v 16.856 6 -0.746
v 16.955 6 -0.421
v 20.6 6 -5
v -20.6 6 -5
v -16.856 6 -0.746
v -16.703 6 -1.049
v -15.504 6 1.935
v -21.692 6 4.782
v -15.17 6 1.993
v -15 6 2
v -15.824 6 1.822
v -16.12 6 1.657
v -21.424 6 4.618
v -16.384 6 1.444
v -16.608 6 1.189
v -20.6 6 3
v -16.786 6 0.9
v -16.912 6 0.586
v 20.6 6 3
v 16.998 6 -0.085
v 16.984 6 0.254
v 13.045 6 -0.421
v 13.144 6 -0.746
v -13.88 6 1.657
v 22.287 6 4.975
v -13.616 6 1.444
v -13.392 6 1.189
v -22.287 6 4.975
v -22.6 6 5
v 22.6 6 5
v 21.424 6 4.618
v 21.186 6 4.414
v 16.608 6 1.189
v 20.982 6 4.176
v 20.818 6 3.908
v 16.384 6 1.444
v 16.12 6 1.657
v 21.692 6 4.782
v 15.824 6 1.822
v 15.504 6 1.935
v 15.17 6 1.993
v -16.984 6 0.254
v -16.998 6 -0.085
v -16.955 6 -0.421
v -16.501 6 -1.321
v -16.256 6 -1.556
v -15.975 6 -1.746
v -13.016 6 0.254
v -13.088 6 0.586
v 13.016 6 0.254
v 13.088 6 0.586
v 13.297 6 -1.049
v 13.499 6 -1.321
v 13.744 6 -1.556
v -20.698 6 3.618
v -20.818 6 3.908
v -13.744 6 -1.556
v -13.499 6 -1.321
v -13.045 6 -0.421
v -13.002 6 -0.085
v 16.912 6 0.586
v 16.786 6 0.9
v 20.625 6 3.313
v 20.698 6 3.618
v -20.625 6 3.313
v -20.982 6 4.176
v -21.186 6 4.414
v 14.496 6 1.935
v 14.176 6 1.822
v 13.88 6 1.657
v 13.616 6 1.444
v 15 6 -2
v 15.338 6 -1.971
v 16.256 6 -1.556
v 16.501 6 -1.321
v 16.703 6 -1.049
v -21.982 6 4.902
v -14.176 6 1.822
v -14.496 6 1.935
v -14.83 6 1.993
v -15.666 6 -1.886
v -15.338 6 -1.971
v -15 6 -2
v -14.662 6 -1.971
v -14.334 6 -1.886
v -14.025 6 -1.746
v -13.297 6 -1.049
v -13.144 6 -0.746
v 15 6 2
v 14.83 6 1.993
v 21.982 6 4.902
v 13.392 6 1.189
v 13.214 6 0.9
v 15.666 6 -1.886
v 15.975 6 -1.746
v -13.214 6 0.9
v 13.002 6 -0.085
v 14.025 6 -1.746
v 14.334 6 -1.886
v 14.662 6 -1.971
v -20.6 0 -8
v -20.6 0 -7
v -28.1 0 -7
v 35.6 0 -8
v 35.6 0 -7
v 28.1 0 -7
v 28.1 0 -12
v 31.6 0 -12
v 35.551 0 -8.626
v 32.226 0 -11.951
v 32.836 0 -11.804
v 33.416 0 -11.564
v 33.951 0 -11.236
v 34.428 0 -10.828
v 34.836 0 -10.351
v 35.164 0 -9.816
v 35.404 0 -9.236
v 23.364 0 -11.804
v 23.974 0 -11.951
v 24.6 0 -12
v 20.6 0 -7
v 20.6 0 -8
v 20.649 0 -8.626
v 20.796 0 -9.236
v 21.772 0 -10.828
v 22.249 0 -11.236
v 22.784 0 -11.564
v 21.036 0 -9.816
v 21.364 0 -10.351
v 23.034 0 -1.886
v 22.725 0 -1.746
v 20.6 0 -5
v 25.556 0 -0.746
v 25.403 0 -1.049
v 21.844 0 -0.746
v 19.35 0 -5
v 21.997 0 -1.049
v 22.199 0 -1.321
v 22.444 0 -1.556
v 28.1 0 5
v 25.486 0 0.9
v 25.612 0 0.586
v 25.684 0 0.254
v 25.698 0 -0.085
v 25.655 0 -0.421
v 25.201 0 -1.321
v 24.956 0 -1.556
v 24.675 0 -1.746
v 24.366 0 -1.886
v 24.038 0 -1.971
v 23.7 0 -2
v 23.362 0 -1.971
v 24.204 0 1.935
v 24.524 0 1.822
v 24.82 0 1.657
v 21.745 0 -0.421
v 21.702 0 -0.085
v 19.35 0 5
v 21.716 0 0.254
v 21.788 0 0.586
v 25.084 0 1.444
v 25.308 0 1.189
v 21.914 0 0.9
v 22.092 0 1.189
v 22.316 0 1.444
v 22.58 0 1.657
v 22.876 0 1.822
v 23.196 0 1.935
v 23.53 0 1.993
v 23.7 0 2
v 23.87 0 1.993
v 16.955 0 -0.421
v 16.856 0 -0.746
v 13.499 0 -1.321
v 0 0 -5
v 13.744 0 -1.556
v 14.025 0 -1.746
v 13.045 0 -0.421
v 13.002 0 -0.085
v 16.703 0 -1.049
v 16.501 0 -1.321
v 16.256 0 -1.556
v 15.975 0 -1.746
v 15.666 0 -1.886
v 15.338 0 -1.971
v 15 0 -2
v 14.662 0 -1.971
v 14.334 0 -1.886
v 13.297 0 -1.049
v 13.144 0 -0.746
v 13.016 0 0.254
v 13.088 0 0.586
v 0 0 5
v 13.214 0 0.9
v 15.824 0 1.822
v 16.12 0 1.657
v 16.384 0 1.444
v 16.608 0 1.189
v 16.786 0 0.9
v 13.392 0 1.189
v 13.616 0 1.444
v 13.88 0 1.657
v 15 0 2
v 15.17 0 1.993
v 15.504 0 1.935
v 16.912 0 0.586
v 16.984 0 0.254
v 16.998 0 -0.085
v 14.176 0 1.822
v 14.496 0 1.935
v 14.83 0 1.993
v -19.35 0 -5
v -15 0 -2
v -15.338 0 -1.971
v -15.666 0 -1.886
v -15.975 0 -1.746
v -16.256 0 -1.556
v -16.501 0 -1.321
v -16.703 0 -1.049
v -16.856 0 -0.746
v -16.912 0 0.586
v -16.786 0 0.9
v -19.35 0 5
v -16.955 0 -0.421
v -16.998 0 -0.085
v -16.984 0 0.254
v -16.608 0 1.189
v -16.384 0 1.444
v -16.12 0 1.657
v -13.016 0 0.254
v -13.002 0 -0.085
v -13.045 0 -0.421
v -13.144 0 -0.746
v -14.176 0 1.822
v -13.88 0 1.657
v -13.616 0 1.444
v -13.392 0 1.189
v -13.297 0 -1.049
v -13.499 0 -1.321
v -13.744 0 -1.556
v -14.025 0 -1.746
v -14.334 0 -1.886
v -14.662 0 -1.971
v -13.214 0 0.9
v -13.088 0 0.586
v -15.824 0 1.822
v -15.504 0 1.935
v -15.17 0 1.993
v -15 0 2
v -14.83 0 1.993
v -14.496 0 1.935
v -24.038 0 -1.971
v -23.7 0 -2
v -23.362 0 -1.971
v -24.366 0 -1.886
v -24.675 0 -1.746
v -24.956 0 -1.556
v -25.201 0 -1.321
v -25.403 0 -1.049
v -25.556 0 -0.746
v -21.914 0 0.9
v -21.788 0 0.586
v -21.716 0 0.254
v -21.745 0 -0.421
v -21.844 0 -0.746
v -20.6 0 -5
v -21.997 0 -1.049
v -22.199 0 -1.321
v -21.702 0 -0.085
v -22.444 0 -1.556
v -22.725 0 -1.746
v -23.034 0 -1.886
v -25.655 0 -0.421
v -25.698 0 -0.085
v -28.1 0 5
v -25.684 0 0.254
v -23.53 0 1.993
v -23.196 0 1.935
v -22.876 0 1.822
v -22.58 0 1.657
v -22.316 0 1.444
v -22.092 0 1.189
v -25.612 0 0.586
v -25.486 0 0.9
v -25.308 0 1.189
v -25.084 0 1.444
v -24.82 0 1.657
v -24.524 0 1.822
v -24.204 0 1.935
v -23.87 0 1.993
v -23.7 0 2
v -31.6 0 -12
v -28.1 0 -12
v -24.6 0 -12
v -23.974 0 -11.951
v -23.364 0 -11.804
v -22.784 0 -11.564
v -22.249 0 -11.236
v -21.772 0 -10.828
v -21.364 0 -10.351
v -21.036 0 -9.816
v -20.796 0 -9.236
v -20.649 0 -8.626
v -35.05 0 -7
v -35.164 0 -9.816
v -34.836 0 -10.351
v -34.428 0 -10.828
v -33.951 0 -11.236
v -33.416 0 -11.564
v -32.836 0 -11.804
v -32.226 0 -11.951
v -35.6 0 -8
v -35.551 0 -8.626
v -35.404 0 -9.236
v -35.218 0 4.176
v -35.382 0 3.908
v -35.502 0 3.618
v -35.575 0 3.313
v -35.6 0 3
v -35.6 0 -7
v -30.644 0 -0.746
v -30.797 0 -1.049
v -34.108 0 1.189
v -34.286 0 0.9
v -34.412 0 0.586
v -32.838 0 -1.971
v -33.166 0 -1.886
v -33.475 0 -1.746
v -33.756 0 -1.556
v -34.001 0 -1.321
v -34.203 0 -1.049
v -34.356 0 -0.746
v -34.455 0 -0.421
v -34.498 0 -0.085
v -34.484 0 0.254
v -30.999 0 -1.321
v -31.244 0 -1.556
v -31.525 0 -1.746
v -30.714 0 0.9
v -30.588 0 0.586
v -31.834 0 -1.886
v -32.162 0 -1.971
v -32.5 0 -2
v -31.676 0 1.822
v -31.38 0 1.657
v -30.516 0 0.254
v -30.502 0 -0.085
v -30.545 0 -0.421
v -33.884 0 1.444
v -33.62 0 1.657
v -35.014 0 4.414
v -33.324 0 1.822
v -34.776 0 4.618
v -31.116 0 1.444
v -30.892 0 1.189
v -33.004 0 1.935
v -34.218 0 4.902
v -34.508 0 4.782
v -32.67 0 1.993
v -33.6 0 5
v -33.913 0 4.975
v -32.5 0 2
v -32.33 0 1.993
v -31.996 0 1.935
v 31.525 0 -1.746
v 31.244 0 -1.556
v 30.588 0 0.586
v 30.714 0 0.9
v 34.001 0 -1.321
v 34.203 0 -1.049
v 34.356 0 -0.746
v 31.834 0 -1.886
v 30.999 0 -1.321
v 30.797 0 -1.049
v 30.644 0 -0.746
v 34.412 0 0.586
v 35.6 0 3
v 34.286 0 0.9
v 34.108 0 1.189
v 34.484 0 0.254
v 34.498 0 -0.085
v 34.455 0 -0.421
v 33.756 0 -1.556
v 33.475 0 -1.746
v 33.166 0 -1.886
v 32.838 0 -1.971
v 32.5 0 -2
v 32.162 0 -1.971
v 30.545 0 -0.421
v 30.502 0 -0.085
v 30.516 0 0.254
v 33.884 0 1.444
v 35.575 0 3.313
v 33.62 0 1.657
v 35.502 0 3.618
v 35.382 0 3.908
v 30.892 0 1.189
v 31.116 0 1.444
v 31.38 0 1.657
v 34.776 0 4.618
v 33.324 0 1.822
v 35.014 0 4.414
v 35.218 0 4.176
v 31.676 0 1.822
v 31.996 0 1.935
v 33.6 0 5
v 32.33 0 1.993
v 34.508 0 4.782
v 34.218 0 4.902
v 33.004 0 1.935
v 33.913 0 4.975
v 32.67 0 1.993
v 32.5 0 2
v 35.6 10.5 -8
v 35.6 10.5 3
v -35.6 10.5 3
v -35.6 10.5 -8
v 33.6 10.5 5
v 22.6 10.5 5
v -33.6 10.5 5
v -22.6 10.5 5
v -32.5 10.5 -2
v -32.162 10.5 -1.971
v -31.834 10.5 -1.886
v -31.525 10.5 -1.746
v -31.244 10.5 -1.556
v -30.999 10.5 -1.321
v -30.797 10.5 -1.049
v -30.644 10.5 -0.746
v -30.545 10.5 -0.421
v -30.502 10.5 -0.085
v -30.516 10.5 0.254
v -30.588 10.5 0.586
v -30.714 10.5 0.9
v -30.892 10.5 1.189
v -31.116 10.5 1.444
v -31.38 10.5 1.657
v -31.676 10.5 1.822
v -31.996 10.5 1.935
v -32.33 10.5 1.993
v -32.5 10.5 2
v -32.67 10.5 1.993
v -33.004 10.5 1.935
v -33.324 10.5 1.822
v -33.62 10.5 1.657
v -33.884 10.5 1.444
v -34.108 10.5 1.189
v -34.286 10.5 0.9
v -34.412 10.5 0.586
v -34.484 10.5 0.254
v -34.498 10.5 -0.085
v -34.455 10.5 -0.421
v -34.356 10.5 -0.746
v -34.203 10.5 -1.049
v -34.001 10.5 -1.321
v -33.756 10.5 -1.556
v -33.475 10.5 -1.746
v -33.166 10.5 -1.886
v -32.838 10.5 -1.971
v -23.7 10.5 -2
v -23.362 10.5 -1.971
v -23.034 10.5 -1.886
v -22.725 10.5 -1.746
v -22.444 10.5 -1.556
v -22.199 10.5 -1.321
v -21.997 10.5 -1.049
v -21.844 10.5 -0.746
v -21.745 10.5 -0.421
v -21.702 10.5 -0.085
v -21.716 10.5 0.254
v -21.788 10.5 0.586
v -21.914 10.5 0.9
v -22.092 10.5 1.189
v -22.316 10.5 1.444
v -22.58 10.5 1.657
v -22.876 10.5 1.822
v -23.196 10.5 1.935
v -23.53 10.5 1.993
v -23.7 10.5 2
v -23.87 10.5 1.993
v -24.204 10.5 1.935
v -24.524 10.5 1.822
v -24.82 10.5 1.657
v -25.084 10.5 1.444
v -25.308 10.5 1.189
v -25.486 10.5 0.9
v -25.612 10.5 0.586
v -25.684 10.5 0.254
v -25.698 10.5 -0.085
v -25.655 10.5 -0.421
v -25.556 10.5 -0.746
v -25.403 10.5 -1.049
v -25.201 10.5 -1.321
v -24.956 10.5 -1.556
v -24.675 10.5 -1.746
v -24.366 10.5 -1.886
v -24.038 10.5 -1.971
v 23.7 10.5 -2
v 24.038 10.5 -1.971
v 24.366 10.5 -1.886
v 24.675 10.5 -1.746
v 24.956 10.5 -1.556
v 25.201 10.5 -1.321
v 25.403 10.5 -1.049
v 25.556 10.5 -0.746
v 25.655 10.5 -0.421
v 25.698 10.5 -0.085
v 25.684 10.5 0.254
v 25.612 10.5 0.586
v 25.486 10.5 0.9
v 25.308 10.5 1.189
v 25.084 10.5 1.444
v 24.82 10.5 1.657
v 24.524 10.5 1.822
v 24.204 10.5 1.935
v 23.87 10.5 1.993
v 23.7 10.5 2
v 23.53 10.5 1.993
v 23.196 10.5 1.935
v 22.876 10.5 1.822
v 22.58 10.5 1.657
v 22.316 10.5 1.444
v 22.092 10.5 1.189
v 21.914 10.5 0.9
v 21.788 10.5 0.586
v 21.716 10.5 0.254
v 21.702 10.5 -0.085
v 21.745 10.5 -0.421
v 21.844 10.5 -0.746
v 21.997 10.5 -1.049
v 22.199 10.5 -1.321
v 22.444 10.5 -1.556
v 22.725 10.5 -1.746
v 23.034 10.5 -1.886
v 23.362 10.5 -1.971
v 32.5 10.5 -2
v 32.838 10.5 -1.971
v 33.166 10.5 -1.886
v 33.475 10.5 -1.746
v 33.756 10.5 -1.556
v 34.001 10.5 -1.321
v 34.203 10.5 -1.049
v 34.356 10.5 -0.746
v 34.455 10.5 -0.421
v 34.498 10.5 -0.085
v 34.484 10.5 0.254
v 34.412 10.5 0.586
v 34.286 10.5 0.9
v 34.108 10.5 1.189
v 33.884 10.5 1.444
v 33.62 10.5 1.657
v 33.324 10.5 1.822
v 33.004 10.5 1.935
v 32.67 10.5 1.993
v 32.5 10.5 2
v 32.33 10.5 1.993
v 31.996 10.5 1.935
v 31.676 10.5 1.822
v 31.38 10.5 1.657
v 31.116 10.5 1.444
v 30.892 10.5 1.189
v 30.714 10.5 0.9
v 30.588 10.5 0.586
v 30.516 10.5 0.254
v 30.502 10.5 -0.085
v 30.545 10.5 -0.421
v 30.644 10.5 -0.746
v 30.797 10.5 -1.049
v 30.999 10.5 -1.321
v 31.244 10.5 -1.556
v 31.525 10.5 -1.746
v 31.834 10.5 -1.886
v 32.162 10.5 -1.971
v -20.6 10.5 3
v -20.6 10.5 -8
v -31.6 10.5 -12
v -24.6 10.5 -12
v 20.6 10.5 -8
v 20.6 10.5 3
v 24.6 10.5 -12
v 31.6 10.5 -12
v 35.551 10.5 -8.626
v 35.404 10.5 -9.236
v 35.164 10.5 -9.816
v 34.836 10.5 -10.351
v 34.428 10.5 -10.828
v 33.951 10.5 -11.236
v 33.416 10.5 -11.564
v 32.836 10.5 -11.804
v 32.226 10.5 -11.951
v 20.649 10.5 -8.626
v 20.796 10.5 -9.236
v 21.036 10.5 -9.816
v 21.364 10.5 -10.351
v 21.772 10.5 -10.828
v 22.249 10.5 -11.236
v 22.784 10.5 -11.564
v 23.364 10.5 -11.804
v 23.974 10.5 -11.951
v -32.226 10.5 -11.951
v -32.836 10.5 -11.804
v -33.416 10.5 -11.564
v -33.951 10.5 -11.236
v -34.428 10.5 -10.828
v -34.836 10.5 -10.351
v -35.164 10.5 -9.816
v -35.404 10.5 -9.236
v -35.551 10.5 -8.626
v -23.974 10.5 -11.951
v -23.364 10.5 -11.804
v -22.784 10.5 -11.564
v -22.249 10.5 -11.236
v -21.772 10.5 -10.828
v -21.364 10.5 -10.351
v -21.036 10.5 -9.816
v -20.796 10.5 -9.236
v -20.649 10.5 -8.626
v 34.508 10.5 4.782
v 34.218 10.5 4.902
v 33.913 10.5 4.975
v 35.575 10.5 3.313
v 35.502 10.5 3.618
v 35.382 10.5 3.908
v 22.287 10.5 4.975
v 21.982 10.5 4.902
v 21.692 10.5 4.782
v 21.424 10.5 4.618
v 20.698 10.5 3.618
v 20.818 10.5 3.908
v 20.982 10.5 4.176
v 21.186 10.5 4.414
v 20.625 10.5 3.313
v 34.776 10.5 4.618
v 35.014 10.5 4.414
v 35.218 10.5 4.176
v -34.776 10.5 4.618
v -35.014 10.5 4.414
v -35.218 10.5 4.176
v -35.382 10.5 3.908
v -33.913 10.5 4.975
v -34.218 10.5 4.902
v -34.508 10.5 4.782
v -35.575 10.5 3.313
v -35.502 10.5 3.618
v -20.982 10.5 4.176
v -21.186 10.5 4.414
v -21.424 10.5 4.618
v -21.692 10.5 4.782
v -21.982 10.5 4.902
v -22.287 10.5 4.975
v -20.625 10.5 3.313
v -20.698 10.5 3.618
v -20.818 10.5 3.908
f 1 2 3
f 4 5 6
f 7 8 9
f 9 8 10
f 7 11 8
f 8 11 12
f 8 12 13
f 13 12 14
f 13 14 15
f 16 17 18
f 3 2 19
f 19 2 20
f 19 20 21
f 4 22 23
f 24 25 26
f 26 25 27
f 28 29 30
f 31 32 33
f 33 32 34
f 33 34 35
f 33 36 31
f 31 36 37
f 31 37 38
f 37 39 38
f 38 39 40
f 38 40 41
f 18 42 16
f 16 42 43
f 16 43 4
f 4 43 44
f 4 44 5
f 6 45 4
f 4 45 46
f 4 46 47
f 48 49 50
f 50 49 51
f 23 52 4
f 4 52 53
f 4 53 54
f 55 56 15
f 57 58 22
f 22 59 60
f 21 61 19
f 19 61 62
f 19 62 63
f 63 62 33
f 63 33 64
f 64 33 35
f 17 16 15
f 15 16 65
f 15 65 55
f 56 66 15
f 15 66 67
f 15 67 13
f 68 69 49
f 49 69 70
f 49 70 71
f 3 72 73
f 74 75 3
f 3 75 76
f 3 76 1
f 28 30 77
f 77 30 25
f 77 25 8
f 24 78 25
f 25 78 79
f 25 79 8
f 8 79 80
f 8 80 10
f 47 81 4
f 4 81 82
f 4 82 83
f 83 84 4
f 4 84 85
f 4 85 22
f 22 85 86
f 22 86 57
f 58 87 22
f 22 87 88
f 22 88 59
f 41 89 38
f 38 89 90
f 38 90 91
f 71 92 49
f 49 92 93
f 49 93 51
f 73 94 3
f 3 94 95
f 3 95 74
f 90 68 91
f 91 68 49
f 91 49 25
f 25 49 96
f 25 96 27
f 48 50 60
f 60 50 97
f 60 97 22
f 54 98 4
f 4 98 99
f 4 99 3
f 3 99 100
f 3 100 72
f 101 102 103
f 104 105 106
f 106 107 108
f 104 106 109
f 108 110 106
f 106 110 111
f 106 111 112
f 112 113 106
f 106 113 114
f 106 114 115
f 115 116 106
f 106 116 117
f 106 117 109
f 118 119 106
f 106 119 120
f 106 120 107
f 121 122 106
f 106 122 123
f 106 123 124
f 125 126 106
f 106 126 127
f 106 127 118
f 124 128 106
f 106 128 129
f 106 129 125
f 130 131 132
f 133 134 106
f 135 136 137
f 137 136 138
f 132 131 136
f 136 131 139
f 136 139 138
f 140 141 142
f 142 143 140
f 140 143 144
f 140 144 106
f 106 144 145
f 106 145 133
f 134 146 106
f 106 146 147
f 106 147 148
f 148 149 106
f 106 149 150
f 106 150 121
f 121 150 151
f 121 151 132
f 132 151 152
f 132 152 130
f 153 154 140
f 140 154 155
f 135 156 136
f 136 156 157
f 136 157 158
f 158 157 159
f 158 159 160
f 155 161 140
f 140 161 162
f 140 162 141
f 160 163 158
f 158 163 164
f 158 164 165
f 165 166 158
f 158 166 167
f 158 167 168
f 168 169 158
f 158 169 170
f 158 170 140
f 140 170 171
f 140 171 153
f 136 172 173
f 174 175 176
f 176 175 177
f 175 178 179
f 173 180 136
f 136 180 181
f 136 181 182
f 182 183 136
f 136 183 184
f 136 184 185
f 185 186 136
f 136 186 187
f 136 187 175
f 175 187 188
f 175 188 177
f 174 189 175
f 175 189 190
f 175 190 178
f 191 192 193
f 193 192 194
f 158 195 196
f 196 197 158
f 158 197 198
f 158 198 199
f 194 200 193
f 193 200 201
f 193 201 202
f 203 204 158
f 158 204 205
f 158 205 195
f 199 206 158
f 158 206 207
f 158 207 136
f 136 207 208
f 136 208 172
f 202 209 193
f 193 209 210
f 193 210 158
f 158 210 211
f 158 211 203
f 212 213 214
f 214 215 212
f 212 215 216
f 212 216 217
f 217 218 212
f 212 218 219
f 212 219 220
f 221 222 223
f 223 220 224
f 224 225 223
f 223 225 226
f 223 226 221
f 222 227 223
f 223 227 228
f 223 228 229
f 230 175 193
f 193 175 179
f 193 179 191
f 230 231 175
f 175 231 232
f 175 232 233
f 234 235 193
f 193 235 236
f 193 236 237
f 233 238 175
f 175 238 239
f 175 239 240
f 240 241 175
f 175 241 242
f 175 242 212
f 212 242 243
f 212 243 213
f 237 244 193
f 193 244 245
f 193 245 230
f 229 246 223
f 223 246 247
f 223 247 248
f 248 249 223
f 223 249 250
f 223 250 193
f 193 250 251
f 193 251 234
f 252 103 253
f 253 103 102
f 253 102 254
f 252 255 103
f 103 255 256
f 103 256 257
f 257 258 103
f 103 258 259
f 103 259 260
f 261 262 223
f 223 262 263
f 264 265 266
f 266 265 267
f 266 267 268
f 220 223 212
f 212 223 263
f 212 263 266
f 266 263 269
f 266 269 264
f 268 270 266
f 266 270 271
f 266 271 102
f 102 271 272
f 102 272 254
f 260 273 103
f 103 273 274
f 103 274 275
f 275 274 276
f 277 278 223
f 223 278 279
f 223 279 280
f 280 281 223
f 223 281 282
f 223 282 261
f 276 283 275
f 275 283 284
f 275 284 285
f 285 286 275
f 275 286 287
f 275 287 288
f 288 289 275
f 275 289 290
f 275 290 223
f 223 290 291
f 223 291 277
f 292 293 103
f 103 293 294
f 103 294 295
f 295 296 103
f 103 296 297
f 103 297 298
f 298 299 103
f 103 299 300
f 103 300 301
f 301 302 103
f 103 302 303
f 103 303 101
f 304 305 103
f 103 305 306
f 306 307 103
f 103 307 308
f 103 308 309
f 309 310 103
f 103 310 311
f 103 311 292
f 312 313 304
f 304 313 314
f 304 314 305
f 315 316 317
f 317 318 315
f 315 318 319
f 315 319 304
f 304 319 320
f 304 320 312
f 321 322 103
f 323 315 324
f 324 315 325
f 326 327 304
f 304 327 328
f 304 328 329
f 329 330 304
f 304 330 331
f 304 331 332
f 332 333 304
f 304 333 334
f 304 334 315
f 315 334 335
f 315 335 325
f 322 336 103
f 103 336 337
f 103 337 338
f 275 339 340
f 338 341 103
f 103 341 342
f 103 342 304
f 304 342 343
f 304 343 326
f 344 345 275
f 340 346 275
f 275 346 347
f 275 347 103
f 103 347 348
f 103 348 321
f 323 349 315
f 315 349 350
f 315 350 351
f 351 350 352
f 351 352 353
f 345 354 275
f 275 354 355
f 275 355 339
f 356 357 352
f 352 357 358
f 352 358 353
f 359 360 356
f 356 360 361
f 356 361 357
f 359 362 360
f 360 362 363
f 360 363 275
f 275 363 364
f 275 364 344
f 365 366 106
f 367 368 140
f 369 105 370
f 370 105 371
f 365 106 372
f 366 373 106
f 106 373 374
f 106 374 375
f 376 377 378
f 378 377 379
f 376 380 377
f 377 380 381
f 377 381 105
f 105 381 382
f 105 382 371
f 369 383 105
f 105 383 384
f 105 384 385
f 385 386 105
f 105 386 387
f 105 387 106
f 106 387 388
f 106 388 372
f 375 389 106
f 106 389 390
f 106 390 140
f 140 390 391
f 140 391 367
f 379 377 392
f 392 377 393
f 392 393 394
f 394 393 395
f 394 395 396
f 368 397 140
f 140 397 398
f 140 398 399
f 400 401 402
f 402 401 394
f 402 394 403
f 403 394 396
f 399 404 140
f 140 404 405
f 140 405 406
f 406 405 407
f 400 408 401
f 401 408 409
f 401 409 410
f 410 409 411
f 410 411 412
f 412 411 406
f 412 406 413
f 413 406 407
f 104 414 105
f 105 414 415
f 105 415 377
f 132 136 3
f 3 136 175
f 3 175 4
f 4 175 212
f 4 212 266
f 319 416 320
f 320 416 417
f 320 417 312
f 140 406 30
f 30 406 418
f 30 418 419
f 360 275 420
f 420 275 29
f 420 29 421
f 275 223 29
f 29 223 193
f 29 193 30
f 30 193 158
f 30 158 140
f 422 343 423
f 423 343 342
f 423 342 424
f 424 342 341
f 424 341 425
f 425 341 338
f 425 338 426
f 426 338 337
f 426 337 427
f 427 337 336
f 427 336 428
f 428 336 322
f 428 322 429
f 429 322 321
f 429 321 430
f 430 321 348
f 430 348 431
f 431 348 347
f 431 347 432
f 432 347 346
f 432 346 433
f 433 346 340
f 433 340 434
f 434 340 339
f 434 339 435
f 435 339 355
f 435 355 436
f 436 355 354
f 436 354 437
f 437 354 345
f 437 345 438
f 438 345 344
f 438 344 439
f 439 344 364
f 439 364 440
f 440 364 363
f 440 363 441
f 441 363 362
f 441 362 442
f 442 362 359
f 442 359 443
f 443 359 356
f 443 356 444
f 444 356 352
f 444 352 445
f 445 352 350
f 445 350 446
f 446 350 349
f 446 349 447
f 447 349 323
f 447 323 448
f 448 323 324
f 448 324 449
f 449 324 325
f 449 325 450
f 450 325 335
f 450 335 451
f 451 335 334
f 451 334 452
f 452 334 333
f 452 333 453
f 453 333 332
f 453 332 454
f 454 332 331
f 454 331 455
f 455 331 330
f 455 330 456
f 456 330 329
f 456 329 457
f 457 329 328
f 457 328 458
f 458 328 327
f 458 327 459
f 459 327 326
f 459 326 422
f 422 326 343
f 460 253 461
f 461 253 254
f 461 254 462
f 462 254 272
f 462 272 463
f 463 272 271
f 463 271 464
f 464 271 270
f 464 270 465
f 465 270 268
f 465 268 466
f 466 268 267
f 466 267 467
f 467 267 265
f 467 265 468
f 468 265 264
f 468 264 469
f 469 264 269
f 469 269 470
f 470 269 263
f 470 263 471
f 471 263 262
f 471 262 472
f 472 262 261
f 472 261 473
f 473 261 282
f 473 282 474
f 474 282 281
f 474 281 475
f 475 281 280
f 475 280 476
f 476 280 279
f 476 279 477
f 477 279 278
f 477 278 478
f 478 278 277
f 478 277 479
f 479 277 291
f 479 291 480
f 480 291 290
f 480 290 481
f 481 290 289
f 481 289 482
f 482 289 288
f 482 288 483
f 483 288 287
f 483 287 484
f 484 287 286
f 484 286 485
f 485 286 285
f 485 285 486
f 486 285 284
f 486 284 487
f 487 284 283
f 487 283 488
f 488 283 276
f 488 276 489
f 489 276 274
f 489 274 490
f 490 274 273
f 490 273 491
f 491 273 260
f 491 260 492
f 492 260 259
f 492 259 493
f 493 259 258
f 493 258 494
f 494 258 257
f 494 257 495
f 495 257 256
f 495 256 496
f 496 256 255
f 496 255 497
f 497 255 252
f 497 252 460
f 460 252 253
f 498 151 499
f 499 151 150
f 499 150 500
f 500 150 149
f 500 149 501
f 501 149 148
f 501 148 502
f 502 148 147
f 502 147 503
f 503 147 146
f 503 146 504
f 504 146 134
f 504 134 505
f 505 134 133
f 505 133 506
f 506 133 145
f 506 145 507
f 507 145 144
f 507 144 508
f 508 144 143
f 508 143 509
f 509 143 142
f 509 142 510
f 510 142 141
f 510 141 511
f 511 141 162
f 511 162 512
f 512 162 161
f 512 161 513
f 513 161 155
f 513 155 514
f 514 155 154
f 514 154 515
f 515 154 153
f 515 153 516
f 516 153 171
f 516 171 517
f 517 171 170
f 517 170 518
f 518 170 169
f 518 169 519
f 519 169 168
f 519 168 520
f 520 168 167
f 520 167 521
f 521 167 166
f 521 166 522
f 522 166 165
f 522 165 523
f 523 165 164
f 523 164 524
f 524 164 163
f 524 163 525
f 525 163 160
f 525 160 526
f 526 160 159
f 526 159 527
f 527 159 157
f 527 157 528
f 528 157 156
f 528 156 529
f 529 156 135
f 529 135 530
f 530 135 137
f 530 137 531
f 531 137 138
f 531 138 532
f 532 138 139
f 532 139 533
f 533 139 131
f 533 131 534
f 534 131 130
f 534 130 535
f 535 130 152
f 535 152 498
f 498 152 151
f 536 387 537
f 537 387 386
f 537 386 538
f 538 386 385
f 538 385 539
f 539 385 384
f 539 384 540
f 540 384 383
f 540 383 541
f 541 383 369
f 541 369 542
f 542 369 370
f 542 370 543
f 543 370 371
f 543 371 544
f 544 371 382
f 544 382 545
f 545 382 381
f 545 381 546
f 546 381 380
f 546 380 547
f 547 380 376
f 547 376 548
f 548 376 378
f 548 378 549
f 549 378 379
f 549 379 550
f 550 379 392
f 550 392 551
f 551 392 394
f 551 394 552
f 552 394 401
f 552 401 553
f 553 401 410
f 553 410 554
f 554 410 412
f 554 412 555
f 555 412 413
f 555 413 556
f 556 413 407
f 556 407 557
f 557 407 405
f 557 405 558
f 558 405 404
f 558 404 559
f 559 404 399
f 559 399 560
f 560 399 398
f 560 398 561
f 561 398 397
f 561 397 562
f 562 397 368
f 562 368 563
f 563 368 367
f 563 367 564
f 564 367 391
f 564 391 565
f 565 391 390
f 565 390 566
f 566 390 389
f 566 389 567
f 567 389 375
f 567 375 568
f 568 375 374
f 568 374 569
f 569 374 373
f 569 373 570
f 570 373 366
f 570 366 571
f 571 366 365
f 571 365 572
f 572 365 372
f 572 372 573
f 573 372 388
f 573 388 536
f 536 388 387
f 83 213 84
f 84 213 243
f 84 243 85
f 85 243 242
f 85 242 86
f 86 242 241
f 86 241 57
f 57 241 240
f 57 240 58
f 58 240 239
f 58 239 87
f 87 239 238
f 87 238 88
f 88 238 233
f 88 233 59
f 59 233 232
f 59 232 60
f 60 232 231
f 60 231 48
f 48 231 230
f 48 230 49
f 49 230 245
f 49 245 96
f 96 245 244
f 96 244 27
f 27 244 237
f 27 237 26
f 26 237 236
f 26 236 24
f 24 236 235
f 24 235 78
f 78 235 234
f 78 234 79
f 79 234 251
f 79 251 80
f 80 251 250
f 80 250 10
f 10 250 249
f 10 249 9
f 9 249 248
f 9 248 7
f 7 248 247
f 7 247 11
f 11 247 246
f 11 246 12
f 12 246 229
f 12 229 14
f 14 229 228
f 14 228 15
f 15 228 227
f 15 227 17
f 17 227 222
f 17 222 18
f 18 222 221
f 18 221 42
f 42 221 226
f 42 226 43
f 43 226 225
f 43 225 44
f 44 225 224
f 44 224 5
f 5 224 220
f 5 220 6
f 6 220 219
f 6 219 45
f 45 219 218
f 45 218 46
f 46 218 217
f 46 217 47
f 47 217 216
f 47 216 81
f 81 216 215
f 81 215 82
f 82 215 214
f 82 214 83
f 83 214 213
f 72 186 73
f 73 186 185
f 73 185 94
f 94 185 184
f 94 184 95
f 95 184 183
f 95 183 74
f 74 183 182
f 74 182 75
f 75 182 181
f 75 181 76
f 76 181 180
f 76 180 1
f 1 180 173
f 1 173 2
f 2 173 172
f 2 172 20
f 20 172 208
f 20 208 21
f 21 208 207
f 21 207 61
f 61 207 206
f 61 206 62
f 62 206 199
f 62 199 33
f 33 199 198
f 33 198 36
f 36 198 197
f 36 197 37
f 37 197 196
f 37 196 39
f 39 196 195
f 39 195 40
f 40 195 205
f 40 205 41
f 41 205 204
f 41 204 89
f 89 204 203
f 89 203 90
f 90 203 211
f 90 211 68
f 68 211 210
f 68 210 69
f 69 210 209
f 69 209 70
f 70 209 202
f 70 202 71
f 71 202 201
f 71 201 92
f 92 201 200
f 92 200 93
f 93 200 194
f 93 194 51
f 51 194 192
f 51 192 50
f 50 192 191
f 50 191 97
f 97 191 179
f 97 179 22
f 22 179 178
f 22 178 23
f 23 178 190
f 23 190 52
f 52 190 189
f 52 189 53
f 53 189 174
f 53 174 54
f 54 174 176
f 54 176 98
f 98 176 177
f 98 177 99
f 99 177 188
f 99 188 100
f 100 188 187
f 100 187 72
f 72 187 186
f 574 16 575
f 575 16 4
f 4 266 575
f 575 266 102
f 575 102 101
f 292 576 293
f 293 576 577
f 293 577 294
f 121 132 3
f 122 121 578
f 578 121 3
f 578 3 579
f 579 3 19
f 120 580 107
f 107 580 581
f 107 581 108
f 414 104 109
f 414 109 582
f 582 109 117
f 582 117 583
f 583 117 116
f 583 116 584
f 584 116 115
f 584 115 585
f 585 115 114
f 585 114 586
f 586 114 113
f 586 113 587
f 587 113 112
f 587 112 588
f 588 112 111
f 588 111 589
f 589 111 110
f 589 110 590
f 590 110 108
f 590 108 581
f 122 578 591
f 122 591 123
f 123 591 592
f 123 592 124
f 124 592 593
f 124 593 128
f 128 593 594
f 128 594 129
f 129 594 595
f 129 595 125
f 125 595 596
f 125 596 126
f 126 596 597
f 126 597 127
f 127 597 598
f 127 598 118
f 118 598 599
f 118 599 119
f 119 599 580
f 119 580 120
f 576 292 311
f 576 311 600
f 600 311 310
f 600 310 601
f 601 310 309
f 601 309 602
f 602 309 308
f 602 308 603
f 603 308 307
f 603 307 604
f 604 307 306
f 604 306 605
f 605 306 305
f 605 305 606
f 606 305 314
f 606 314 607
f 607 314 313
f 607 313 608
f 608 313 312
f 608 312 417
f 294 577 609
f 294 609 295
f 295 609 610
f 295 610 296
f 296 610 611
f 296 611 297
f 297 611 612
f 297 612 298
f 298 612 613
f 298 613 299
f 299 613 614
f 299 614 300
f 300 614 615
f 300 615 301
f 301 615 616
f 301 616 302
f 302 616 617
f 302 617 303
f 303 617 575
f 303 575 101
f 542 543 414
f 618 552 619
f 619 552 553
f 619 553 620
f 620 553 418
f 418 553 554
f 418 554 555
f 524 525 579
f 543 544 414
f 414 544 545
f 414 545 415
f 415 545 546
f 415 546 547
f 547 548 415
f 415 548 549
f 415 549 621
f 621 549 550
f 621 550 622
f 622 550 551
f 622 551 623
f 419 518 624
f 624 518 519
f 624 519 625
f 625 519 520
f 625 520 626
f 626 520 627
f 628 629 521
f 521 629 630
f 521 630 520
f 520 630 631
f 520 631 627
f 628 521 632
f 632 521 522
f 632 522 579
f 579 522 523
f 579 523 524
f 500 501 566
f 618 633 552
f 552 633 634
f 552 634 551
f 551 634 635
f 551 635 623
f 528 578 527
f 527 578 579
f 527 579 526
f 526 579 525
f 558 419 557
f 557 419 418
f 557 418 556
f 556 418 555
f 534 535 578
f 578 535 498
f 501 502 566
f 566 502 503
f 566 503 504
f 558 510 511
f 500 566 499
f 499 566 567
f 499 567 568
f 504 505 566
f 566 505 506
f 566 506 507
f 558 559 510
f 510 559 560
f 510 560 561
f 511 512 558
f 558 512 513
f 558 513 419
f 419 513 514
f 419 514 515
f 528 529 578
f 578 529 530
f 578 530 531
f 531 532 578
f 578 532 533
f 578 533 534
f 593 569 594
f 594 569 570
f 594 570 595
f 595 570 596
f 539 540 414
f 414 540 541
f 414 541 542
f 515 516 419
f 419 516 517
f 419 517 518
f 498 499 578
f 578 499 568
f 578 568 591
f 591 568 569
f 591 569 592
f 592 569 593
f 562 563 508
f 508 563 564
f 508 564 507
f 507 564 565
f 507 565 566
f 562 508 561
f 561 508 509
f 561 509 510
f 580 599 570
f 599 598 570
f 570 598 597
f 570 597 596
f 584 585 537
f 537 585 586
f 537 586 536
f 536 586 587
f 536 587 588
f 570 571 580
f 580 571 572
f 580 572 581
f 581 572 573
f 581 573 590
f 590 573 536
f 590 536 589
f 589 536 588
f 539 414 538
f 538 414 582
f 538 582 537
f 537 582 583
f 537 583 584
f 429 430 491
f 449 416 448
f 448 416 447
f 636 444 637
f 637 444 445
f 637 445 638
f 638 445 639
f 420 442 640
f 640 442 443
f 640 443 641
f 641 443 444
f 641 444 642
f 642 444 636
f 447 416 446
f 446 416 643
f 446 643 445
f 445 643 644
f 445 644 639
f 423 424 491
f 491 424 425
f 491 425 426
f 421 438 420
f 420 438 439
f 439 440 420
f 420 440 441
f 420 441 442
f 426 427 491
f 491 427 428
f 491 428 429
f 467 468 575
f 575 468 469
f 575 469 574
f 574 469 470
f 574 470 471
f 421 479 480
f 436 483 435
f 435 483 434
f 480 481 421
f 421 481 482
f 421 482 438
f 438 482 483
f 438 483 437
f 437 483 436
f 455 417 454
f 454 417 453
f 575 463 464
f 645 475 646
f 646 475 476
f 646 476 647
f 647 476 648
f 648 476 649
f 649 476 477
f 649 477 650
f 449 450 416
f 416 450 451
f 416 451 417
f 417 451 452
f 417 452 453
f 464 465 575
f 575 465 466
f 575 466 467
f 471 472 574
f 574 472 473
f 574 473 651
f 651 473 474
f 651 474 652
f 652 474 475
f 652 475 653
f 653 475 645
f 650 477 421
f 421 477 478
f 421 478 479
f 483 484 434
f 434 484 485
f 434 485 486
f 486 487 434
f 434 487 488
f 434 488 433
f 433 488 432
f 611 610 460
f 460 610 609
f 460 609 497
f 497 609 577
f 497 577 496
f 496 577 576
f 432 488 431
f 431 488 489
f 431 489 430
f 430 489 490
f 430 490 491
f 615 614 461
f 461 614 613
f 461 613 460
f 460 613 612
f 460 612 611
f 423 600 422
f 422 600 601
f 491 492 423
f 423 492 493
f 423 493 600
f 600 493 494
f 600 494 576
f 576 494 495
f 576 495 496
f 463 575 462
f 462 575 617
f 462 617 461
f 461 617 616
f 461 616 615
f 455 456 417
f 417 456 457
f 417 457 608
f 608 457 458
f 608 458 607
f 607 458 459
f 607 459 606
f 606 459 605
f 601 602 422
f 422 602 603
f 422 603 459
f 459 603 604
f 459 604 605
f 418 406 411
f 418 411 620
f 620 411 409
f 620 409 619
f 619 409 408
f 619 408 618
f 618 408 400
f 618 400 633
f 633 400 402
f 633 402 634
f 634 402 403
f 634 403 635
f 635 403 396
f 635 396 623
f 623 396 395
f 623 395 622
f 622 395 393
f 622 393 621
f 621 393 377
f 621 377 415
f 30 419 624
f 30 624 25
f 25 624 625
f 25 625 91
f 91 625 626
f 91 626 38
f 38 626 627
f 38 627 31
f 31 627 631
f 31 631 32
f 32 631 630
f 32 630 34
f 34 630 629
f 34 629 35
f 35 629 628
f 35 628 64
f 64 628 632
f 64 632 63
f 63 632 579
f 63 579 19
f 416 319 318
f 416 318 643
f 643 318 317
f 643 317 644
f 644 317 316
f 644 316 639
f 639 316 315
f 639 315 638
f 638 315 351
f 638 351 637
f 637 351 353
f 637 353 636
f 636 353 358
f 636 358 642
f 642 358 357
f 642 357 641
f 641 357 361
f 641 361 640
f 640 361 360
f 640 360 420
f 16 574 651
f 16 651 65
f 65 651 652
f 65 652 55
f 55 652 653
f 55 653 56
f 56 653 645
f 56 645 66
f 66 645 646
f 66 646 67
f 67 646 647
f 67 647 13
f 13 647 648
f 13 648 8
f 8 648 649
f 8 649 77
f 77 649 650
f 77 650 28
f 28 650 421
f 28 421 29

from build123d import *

# Parameters (mm, degrees)
SKETCH1_W           = 71.2
SKETCH1_H           = 10
SKETCH1_R           = 2
BOSS_EXTRUDE1_DEPTH = 6
BOSS_EXTRUDE5_START = -6
SKETCH6_W           = 15
SKETCH6_H           = 17
SKETCH6_R           = 2
BOSS_EXTRUDE5_DEPTH = 6
FILLET1_R           = 4
SKETCH7_R           = 2
BOSS_EXTRUDE6_DEPTH = 4.5
FILLET2_R           = 2


with BuildPart() as part:
    # Sketch1 → Boss-Extrude1 (new body)
    with BuildSketch(Plane(origin=(0, 0, 0), x_dir=(1, 0, 0), z_dir=(0, 1, 0))):
        Rectangle(SKETCH1_W, SKETCH1_H)
        with Locations(Location((-32.5, 0, 0), (0, 0, 270))):
            Circle(SKETCH1_R, mode=Mode.SUBTRACT)
        with Locations(Location((-23.7, 0, 0), (0, 0, 270))):
            Circle(SKETCH1_R, mode=Mode.SUBTRACT)
        with Locations(Location((23.7, 0, 0), (0, 0, 270))):
            Circle(SKETCH1_R, mode=Mode.SUBTRACT)
        with Locations(Location((32.5, 0, 0), (0, 0, 270))):
            Circle(SKETCH1_R, mode=Mode.SUBTRACT)
        with Locations(Location((-15, 0, 0), (0, 0, 270))):
            Circle(SKETCH1_R, mode=Mode.SUBTRACT)
        with Locations(Location((15, 0, 0), (0, 0, 270))):
            Circle(SKETCH1_R, mode=Mode.SUBTRACT)
    extrude(amount=BOSS_EXTRUDE1_DEPTH)

    # Sketch6 → Boss-Extrude5 (add)
    # profile 1 of 2: a face of its own
    with BuildSketch(Plane(origin=(0, 6, 0), x_dir=(1, 0, 0), z_dir=(0, 1, 0)).offset(BOSS_EXTRUDE5_START)):
        with Locations((-28.1, 3.5)):
            Rectangle(SKETCH6_W, SKETCH6_H)
        with Locations(Location((-23.7, 0, 0), (0, 0, 270))):
            Circle(SKETCH6_R, mode=Mode.SUBTRACT)
        with Locations(Location((-32.5, 0, 0), (0, 0, 270))):
            Circle(SKETCH6_R, mode=Mode.SUBTRACT)
    # profile 2 of 2: a face of its own
    with BuildSketch(Plane(origin=(0, 6, 0), x_dir=(1, 0, 0), z_dir=(0, 1, 0)).offset(BOSS_EXTRUDE5_START)):
        with Locations((28.1, 3.5)):
            Rectangle(SKETCH6_W, SKETCH6_H)
        with Locations(Location((32.5, 0, 0), (0, 0, 270))):
            Circle(SKETCH6_R, mode=Mode.SUBTRACT)
        with Locations(Location((23.7, 0, 0), (0, 0, 270))):
            Circle(SKETCH6_R, mode=Mode.SUBTRACT)
    extrude(amount=BOSS_EXTRUDE5_DEPTH)

    # Fillet1
    fillet1_edges = [part.edges().sort_by_distance(p)[0] for p in [
        (-20.6, 3, -12),
        (-35.6, 3, -12),
        (35.6, 3, -12),
        (20.6, 3, -12),
    ]]
    fillet(fillet1_edges, radius=FILLET1_R)

    # Sketch7 → Boss-Extrude6 (add)
    # profile 1 of 2: a face of its own
    with BuildSketch(Plane(origin=(0, 6, 0), x_dir=(1, 0, 0), z_dir=(0, 1, 0))):
        with BuildLine():
            Line((31.6, 12), (24.6, 12))
            ThreePointArc((24.6, 12), (21.771572875, 10.828427125), (20.6, 8))
            Line((20.6, 8), (20.6, -5))
            Line((20.6, -5), (35.6, -5))
            Line((35.6, -5), (35.6, 8))
            ThreePointArc((35.6, 8), (34.428427125, 10.828427125), (31.6, 12))
        make_face()
        with Locations(Location((32.5, 0, 0), (0, 0, 270))):
            Circle(SKETCH7_R, mode=Mode.SUBTRACT)
        with Locations(Location((23.7, 0, 0), (0, 0, 270))):
            Circle(SKETCH7_R, mode=Mode.SUBTRACT)
    # profile 2 of 2: a face of its own
    with BuildSketch(Plane(origin=(0, 6, 0), x_dir=(1, 0, 0), z_dir=(0, 1, 0))):
        with BuildLine():
            Line((-24.6, 12), (-31.6, 12))
            ThreePointArc((-31.6, 12), (-34.428427125, 10.828427125), (-35.6, 8))
            Line((-35.6, 8), (-35.6, -5))
            Line((-35.6, -5), (-20.6, -5))
            Line((-20.6, -5), (-20.6, 8))
            ThreePointArc((-20.6, 8), (-21.771572875, 10.828427125), (-24.6, 12))
        make_face()
        with Locations(Location((-23.7, 0, 0), (0, 0, 270))):
            Circle(SKETCH7_R, mode=Mode.SUBTRACT)
        with Locations(Location((-32.5, 0, 0), (0, 0, 270))):
            Circle(SKETCH7_R, mode=Mode.SUBTRACT)
    extrude(amount=BOSS_EXTRUDE6_DEPTH)

    # Fillet2
    fillet2_edges = [part.edges().sort_by_distance(p)[0] for p in [
        (20.6, 8.25, 5),
        (-20.6, 8.25, 5),
        (35.6, 5.25, 5),
        (-35.6, 5.25, 5),
    ]]
    fillet(fillet2_edges, radius=FILLET2_R)


solid = part.part
